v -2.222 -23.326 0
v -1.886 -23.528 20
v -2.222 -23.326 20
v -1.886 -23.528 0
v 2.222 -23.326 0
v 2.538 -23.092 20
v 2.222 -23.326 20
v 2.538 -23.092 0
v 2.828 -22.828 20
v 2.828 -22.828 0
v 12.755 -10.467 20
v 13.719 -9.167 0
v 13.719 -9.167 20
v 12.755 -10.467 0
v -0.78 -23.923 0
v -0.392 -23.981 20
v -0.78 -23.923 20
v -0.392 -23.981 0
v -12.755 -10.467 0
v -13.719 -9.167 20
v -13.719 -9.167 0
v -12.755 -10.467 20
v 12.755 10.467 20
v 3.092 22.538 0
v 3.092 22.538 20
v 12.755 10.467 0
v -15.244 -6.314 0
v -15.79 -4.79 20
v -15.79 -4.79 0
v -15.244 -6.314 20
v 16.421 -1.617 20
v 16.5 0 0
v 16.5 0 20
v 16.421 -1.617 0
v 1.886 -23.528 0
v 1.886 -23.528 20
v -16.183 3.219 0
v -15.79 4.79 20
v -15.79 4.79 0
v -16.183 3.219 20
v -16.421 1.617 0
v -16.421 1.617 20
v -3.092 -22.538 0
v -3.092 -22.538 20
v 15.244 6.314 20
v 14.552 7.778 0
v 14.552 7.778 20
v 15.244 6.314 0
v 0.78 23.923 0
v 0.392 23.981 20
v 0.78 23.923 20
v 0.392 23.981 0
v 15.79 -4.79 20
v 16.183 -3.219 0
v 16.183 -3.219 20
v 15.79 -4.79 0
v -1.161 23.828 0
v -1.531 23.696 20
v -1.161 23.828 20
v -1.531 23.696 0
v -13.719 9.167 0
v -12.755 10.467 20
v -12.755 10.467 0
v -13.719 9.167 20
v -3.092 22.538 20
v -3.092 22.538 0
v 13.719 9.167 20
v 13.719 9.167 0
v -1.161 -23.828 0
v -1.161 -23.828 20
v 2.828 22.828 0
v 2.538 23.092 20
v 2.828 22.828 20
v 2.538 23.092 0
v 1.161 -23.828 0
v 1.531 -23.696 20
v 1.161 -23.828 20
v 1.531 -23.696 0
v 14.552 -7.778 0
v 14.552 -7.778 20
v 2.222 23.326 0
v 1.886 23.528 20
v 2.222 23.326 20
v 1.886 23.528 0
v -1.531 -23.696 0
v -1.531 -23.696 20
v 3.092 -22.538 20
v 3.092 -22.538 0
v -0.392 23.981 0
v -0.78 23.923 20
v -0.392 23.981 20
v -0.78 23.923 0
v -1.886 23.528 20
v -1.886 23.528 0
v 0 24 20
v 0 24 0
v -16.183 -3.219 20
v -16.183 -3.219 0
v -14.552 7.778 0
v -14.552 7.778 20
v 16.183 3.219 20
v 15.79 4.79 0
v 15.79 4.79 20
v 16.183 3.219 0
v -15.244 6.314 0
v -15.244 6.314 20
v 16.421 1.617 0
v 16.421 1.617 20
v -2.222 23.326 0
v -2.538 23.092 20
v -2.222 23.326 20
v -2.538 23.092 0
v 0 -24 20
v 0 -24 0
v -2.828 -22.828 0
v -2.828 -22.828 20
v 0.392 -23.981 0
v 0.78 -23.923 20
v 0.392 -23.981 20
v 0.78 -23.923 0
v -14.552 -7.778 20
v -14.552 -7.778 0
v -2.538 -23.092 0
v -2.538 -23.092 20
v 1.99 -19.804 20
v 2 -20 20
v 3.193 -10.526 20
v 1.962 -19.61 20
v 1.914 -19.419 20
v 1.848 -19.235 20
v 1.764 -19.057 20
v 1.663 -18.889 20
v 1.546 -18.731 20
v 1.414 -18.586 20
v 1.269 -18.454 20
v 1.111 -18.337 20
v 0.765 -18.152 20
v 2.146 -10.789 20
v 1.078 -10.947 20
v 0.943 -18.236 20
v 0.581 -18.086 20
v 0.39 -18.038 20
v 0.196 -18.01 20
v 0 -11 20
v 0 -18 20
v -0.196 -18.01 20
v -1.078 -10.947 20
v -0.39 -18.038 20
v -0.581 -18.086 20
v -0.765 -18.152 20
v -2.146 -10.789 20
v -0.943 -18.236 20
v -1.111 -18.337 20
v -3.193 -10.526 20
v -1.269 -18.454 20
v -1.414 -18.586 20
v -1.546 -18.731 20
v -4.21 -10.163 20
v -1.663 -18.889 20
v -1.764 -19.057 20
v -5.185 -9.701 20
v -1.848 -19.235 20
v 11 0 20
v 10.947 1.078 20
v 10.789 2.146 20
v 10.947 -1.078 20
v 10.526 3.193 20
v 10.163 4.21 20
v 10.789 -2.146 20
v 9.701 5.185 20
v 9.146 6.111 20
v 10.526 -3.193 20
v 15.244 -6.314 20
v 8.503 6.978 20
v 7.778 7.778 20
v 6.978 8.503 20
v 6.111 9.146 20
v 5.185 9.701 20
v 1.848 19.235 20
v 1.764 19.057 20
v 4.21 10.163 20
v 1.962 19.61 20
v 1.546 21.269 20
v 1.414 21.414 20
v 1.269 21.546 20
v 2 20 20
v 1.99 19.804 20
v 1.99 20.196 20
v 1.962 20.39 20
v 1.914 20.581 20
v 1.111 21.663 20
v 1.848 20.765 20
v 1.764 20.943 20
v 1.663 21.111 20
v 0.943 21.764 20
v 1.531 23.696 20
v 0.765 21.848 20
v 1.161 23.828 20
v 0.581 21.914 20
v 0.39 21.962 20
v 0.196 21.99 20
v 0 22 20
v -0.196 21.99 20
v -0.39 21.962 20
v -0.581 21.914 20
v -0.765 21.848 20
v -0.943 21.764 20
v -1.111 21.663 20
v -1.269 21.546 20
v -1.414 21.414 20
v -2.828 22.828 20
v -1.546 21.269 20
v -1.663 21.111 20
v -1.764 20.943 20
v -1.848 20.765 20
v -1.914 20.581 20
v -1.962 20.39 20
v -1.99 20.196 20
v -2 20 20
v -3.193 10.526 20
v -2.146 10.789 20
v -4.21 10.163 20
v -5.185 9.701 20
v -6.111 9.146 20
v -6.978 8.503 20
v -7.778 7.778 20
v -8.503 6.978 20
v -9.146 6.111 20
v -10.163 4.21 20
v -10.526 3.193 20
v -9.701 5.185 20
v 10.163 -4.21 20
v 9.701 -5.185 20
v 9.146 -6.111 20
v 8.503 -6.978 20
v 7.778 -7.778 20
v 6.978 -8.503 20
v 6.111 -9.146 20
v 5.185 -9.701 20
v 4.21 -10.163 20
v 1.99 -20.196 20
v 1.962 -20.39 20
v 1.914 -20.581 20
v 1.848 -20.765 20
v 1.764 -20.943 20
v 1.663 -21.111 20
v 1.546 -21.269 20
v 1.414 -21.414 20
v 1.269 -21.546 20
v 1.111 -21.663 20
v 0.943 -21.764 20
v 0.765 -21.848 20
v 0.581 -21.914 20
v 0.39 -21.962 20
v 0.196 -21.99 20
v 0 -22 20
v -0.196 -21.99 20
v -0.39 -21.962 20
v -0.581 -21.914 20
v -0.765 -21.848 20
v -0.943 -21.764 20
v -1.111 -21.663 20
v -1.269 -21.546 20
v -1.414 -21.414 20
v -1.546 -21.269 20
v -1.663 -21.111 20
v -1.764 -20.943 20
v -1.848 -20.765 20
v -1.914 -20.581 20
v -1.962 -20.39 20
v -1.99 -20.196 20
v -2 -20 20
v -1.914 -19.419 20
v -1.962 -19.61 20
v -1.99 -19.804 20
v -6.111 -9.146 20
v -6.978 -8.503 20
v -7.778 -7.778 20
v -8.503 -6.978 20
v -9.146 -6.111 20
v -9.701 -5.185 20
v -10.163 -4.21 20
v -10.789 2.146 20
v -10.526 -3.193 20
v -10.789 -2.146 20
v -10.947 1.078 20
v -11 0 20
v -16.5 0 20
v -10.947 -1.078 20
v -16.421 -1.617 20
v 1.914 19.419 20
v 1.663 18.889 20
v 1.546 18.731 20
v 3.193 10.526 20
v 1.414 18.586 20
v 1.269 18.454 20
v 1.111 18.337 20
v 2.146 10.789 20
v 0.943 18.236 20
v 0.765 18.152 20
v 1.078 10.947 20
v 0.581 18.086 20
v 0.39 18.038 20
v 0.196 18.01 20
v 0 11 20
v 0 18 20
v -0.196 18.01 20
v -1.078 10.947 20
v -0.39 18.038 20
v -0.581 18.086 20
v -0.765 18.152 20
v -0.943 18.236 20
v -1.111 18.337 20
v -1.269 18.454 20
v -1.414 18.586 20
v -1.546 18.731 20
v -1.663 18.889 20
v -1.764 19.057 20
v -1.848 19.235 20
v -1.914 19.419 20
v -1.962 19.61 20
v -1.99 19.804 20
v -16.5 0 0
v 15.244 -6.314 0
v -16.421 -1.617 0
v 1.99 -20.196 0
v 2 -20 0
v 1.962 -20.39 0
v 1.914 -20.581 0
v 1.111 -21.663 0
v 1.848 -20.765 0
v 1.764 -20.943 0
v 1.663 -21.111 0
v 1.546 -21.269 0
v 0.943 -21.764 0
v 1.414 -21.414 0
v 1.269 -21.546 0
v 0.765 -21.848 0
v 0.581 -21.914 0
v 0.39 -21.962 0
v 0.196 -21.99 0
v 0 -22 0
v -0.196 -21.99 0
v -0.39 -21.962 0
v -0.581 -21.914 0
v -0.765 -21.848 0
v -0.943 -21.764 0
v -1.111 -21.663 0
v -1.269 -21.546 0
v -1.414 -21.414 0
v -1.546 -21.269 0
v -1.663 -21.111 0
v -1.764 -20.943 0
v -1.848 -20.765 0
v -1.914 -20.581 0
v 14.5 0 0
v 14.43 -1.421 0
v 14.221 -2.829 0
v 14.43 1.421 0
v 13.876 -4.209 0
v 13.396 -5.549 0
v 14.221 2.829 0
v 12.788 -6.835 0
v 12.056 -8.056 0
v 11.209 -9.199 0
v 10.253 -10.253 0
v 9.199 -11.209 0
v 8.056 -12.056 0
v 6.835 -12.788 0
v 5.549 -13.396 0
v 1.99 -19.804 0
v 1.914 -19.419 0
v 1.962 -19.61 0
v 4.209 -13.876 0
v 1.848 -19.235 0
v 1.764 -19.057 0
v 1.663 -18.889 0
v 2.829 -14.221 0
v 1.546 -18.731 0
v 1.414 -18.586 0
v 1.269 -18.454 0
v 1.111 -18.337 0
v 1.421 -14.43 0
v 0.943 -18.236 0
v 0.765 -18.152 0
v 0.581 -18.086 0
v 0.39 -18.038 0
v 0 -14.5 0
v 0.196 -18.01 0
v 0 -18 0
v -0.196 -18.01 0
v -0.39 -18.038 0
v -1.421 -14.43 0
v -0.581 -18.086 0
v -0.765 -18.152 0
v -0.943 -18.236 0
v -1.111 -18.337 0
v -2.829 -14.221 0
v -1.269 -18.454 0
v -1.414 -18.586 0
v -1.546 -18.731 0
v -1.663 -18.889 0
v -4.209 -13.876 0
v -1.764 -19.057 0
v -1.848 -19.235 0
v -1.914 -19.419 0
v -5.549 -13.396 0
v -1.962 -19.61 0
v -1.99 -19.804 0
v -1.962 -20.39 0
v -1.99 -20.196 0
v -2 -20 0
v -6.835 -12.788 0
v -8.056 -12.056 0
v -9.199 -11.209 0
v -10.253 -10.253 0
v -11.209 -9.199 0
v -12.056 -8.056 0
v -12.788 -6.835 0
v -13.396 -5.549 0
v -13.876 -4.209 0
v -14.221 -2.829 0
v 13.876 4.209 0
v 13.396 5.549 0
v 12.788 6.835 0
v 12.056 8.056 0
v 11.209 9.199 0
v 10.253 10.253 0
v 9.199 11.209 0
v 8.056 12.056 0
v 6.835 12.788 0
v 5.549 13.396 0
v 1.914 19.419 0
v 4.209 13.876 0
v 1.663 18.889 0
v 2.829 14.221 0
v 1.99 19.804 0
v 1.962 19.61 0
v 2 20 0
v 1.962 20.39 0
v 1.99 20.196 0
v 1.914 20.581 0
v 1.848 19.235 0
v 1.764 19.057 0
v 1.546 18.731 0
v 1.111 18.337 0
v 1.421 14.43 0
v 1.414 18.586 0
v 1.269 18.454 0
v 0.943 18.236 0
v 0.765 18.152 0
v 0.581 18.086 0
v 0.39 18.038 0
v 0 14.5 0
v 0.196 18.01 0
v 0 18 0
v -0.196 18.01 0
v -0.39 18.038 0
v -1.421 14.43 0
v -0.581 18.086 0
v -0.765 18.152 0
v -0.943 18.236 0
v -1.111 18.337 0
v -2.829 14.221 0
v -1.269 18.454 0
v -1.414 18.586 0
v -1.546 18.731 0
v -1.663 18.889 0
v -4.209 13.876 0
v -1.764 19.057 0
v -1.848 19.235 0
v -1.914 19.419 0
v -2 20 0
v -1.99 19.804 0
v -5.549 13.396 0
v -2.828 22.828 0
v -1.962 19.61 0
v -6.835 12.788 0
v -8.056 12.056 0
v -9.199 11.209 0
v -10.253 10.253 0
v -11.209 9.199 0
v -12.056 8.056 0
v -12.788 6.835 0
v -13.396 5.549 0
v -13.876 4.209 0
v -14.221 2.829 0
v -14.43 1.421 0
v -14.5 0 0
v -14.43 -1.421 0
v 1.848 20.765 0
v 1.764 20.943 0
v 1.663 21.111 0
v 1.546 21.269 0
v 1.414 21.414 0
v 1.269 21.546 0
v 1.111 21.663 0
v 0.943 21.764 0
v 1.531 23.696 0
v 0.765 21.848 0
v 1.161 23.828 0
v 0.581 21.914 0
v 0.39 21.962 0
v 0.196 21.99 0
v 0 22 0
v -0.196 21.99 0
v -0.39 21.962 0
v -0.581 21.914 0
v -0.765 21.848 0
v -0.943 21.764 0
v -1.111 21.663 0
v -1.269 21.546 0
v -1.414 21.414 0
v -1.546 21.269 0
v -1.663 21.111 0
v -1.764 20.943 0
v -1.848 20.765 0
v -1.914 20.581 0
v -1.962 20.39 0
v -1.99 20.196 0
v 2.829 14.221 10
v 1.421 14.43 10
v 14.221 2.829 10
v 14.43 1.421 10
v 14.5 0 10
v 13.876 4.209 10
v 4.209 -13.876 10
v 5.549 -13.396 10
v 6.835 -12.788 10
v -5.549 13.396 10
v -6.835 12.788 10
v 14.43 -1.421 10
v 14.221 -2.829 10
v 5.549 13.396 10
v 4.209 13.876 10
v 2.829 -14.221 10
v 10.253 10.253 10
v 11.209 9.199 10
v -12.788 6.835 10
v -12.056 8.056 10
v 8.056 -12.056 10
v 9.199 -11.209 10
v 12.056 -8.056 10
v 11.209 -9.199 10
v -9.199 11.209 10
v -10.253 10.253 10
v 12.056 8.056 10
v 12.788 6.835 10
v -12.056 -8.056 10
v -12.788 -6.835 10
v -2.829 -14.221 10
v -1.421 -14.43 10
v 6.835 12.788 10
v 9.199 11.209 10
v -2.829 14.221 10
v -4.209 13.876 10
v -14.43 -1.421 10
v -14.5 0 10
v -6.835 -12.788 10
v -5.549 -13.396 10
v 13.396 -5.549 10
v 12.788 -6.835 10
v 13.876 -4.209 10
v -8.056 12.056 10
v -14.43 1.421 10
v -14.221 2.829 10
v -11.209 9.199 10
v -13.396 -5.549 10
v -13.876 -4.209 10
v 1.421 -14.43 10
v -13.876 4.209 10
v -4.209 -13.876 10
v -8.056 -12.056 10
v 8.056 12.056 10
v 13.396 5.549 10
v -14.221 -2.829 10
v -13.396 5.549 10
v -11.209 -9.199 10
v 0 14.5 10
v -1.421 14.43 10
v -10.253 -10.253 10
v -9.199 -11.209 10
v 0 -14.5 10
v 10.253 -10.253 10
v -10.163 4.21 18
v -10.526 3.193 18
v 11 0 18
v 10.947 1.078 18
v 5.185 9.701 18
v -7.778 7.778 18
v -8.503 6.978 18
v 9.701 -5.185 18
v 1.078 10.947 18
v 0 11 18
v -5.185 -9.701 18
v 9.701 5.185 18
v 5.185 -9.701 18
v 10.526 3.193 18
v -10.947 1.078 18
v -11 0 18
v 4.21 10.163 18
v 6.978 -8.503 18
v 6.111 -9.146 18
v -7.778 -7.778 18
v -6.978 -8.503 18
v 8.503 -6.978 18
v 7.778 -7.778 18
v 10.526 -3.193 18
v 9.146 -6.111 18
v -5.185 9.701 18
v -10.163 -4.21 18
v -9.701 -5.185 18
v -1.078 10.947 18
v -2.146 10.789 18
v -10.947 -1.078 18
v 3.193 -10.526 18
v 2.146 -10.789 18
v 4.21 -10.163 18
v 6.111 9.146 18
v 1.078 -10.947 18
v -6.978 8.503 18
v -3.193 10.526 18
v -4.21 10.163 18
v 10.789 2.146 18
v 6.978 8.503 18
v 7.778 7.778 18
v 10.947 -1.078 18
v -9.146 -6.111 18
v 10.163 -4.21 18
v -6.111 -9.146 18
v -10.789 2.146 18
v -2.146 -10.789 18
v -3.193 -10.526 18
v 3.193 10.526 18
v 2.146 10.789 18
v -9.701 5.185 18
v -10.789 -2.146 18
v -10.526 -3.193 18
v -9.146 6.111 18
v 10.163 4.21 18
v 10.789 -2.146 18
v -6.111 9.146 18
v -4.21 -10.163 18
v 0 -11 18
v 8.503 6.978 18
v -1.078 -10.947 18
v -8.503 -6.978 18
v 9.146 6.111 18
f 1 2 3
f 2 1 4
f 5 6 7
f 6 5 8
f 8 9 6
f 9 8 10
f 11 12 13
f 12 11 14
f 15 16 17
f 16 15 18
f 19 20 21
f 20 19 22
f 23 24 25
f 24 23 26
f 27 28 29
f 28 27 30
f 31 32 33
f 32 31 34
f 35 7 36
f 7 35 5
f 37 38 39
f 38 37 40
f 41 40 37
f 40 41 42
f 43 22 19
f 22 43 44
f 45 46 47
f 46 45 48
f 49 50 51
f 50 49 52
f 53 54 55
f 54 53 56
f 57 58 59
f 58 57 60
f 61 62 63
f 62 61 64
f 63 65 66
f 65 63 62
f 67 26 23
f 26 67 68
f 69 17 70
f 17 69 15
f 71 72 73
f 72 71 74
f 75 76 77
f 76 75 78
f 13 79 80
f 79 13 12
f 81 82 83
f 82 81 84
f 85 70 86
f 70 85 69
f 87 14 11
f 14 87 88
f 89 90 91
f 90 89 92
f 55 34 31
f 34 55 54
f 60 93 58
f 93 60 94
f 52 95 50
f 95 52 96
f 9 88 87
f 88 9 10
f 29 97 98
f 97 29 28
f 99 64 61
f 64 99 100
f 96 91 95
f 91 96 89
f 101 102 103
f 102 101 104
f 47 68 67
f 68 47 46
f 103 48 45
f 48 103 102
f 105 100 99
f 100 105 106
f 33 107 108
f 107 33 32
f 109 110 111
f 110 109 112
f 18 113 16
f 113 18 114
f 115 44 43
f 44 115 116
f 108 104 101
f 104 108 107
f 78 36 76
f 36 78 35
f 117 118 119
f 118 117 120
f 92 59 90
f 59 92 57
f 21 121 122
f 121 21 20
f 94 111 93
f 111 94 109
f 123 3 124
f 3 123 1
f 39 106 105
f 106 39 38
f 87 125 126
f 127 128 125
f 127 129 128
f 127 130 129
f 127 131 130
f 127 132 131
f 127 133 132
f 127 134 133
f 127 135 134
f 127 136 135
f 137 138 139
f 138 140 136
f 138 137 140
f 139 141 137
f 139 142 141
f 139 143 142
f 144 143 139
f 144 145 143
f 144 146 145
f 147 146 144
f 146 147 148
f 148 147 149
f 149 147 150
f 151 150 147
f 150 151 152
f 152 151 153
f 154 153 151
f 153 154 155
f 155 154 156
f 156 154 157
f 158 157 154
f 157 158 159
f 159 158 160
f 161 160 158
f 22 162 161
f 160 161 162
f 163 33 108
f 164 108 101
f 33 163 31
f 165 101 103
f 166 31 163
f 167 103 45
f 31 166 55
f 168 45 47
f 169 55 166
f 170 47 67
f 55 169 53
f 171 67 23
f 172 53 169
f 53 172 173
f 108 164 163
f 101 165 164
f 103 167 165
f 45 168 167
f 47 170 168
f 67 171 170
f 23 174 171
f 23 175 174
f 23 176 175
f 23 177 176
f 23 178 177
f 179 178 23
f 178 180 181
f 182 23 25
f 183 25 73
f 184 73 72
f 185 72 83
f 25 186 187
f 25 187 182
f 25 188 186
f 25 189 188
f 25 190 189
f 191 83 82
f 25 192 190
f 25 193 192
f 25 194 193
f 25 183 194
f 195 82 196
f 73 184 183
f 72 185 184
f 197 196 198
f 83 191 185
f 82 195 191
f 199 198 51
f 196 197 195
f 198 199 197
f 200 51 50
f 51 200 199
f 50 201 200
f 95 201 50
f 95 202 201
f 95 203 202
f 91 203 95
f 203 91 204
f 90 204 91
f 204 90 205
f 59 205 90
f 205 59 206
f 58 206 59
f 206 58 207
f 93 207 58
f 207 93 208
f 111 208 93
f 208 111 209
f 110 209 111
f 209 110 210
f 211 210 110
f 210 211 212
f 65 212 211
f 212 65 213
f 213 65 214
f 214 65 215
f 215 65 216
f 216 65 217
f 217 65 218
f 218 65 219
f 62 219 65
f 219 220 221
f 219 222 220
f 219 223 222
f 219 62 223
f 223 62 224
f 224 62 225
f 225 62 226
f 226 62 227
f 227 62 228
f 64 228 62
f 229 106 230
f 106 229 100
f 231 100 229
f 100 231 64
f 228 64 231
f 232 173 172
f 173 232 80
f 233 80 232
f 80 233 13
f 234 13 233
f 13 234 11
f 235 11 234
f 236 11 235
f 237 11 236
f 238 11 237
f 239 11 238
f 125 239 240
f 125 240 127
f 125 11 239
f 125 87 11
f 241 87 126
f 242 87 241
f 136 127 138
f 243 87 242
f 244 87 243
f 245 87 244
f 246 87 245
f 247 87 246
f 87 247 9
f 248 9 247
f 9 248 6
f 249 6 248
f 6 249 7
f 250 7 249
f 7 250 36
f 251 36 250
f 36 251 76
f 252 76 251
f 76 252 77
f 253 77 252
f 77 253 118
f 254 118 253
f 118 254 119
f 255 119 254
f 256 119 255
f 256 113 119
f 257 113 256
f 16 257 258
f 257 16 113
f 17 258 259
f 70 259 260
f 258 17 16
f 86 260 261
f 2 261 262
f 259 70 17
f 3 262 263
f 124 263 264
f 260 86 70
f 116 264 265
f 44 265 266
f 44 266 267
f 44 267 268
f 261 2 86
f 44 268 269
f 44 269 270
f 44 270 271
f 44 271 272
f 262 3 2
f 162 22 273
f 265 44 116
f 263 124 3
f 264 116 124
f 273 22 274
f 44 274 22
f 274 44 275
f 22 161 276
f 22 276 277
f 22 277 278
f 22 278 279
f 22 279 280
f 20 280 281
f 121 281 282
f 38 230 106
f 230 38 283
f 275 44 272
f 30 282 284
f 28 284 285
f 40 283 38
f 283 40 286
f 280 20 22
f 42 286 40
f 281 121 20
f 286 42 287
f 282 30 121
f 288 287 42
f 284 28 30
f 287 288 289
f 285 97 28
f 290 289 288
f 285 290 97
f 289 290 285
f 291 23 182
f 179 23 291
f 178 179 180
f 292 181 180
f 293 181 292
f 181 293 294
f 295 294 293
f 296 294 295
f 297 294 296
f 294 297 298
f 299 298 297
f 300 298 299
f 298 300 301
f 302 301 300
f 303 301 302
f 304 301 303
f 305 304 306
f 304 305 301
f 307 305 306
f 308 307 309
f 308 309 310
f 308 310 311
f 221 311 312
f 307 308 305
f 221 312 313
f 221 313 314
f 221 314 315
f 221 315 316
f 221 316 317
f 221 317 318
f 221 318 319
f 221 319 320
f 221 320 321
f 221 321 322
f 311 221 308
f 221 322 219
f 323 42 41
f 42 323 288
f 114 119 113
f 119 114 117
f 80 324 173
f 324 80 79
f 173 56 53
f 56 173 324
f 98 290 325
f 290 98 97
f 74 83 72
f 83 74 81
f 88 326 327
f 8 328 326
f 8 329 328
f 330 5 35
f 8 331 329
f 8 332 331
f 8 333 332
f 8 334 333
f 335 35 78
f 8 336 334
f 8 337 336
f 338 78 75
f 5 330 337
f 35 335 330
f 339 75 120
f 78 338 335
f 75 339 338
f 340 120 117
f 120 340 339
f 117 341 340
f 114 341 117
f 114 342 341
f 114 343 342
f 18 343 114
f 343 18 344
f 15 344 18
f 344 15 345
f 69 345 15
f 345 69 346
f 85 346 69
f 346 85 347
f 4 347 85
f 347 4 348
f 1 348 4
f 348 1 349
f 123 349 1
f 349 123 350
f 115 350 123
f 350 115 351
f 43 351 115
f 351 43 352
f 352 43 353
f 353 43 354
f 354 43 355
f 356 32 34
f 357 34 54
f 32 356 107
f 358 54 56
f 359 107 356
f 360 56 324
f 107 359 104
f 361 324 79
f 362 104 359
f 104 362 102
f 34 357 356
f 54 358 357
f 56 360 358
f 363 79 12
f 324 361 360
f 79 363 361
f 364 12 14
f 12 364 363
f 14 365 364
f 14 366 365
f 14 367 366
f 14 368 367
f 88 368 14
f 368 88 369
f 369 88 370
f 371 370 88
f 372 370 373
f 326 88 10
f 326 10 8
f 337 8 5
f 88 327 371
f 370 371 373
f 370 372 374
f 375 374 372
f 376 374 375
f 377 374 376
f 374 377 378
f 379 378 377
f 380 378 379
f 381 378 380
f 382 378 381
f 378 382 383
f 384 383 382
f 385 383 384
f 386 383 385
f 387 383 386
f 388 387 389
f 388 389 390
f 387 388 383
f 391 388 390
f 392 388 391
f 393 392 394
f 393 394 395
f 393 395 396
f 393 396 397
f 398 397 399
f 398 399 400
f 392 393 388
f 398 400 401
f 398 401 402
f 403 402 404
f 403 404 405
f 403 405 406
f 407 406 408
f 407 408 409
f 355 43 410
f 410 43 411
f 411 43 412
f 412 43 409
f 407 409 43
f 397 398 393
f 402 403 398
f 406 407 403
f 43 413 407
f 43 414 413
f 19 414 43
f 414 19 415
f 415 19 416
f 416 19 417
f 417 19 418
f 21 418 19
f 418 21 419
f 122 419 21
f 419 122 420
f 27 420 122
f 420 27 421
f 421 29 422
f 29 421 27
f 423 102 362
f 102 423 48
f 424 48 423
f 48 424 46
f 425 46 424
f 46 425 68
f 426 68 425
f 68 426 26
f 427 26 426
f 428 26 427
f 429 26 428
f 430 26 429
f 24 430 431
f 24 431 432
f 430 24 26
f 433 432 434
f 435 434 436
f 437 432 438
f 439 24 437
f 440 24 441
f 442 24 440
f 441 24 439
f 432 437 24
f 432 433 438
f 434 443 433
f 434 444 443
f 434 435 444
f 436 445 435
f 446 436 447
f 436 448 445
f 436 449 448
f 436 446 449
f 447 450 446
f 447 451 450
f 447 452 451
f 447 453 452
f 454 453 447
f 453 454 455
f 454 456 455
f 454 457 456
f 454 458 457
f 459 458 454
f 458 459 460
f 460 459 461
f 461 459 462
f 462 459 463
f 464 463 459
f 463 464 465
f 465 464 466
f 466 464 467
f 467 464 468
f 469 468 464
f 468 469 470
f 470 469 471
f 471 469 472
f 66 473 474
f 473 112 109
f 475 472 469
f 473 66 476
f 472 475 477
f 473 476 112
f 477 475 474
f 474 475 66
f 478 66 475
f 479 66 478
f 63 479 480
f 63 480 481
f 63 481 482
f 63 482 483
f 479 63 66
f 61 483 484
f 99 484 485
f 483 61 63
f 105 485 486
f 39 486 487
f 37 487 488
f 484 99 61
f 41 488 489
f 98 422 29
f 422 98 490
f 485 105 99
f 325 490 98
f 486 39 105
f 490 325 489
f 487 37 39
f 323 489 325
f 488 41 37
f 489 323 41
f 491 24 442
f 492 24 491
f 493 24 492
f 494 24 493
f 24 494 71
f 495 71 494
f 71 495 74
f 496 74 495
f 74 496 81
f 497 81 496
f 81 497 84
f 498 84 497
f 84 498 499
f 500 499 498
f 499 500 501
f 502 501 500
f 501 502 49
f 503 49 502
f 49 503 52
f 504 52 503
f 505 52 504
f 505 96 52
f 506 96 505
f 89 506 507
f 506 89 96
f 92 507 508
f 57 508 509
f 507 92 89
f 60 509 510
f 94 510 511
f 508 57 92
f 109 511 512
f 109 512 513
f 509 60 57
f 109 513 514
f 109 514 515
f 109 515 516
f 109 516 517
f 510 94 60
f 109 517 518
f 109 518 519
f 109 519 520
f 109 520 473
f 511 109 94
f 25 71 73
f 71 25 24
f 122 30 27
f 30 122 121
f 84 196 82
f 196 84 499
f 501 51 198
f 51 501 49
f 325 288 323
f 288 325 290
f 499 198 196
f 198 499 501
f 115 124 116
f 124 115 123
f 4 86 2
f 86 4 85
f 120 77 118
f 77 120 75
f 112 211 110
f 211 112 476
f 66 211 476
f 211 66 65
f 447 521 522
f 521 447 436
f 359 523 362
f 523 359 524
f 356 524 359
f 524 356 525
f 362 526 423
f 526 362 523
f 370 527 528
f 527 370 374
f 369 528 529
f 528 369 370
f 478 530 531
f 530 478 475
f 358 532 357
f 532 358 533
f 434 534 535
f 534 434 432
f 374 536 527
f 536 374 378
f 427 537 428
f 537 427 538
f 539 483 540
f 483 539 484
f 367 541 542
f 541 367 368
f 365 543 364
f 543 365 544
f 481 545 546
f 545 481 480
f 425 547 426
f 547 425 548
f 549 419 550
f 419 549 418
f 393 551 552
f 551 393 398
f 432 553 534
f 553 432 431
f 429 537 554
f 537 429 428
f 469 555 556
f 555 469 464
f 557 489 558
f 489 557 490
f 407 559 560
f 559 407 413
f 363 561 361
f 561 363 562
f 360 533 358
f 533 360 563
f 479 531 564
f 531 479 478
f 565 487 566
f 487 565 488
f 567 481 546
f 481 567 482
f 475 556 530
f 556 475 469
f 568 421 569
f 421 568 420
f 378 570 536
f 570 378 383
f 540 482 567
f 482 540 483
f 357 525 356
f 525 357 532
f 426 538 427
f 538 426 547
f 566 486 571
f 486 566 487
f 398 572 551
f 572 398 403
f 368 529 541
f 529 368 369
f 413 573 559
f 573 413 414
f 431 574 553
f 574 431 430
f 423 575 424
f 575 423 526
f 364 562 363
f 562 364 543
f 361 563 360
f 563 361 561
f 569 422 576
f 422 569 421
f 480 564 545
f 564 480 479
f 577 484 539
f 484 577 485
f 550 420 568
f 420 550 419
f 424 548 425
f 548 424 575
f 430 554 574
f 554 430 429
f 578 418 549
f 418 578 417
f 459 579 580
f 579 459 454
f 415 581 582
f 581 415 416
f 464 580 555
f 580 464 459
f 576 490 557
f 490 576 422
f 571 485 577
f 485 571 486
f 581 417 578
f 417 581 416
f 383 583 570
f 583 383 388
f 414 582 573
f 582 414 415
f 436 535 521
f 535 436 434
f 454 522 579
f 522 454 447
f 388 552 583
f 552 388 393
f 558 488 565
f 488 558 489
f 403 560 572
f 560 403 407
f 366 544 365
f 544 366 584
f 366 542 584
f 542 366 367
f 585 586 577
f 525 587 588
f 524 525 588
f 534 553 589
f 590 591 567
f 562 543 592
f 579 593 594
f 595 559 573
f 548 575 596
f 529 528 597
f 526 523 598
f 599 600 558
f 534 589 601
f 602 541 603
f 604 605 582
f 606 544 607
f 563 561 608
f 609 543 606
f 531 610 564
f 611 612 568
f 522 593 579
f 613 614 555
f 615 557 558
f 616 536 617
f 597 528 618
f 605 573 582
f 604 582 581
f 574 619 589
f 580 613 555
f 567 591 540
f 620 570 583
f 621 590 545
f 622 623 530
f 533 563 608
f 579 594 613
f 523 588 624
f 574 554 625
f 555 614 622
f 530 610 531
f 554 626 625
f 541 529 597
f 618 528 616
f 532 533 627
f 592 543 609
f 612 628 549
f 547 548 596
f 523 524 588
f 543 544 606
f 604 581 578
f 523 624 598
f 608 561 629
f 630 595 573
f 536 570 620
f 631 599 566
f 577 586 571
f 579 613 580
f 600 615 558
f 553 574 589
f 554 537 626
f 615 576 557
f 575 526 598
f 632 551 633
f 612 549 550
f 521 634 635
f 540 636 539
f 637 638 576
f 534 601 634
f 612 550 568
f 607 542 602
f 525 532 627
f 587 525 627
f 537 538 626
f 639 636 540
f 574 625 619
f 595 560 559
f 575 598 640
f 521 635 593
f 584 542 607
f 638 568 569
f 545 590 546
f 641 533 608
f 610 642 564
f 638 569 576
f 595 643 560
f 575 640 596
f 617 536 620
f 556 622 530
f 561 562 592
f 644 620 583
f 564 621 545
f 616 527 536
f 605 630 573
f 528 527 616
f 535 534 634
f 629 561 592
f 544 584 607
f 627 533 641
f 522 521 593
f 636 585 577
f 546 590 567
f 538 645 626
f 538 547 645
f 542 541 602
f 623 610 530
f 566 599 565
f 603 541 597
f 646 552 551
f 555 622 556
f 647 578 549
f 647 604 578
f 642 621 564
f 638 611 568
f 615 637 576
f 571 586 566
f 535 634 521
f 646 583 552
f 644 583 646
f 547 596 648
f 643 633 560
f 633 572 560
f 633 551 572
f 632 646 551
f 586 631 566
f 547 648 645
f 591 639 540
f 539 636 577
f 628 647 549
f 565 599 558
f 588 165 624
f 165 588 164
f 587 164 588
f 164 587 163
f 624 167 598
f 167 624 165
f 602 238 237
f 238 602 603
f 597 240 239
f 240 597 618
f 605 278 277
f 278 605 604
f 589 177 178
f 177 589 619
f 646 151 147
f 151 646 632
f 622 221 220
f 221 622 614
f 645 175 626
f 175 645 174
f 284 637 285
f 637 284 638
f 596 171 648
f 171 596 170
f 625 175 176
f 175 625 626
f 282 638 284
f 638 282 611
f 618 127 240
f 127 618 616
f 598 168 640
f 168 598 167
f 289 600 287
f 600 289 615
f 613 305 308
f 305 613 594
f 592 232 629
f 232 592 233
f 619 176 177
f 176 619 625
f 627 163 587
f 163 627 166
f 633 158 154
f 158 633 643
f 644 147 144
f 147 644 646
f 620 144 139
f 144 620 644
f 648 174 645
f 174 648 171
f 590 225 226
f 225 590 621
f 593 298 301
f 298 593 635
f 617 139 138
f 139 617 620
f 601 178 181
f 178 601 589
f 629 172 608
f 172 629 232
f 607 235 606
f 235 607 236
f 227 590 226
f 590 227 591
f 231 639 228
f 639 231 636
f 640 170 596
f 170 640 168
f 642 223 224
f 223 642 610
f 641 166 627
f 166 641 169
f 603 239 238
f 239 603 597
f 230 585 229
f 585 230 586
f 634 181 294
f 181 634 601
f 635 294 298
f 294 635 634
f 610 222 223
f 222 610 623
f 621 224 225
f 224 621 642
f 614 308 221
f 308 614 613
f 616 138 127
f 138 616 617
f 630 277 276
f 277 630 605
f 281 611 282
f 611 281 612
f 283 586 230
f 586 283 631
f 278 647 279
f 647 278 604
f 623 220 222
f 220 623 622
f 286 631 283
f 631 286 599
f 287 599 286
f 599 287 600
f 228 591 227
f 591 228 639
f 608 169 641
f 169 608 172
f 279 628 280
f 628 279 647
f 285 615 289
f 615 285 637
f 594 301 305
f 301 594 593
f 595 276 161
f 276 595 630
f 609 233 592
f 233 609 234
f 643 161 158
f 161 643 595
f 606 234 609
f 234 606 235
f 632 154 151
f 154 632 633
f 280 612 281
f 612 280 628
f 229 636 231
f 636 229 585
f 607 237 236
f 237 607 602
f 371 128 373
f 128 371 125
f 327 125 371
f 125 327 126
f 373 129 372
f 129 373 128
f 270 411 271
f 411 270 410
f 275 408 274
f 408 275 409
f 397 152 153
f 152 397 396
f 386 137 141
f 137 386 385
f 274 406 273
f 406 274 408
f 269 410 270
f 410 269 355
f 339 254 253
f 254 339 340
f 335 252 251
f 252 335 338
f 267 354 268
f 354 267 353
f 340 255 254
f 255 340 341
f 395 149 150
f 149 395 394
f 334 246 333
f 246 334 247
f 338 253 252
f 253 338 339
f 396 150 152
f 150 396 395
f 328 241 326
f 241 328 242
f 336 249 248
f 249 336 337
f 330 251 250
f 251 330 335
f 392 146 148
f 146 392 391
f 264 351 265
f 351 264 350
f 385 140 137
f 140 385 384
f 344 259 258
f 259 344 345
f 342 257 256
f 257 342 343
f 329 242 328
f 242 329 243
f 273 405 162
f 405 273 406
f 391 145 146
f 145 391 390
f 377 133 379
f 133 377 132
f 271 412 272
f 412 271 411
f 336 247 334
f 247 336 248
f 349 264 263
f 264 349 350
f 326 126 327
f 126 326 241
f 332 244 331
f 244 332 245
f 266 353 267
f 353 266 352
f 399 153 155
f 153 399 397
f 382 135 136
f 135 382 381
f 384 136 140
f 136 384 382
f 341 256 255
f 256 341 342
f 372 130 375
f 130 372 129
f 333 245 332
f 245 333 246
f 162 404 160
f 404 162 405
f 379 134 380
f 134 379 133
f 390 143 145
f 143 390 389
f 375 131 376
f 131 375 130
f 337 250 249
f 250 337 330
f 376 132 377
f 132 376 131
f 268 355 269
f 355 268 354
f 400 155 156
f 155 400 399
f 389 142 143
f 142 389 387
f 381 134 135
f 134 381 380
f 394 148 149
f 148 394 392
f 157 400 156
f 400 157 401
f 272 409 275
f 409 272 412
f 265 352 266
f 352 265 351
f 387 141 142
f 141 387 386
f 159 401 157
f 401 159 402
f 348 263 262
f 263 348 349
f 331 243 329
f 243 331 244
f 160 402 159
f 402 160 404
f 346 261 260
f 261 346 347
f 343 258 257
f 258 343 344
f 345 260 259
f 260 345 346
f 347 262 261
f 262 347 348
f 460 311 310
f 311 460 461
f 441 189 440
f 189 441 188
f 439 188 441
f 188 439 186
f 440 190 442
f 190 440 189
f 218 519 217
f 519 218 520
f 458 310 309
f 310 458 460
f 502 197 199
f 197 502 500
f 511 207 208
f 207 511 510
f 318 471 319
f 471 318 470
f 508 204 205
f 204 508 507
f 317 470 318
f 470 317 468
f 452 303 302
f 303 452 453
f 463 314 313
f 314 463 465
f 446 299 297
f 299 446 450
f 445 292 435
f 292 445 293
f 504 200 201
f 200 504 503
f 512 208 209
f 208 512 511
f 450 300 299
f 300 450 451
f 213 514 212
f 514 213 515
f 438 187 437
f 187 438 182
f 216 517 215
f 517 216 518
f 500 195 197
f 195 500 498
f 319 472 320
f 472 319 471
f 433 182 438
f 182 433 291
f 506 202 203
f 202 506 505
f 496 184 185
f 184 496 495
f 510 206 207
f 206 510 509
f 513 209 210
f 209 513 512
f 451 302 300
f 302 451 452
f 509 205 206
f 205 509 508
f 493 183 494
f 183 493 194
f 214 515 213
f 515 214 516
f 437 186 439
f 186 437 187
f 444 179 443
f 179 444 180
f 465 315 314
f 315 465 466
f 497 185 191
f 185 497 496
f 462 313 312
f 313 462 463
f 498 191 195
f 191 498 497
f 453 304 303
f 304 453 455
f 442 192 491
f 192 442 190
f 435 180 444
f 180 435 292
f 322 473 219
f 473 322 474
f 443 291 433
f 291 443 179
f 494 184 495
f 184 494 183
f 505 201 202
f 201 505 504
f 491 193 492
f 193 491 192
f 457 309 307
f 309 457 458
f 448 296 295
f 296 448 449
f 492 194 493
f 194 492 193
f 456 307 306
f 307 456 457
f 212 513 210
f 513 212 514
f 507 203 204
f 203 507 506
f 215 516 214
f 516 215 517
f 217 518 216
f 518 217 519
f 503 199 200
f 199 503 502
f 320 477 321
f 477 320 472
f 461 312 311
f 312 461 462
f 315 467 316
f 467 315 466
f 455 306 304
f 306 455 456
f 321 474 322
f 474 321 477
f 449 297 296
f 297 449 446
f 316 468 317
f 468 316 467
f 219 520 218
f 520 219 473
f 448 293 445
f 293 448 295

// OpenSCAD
use <threadlib/threadlib.scad>
$fn=64;


sh_through = 4;
sh_countersink = 3;
sh_thread = 4.5; // 2.7 for tapping, 4.5 for brass insert

shoulder_size = 2;
thickness = 10;
wall_thickness = 2;

through_casing_radius = sh_through/2 + wall_thickness;

mounting_holes_height = 30;
mounting_holes_width = 40;

eyepiece_distance = 20;

difference() {
    union() {
        hull() {
            translate([0,-20,0])cylinder(eyepiece_distance, through_casing_radius,through_casing_radius);
            translate([0,0,0])cylinder(eyepiece_distance, 29/2 + 2, 29/2 + 2);
            translate([0,20,0])cylinder(eyepiece_distance, through_casing_radius,through_casing_radius);
        }
    }
    
    translate([0,0,-shoulder_size-8])cylinder(eyepiece_distance,29/2,29/2);
    translate([0,0,eyepiece_distance-shoulder_size-8])cylinder(8,29/2,22/2);
    translate([0,0,-1])cylinder(eyepiece_distance+2,22/2,22/2);
    
    translate([0,-20,-1])cylinder(50, sh_through/2, sh_through/2);
    translate([0,20,-1])cylinder(50, sh_through/2, sh_through/2);
}
